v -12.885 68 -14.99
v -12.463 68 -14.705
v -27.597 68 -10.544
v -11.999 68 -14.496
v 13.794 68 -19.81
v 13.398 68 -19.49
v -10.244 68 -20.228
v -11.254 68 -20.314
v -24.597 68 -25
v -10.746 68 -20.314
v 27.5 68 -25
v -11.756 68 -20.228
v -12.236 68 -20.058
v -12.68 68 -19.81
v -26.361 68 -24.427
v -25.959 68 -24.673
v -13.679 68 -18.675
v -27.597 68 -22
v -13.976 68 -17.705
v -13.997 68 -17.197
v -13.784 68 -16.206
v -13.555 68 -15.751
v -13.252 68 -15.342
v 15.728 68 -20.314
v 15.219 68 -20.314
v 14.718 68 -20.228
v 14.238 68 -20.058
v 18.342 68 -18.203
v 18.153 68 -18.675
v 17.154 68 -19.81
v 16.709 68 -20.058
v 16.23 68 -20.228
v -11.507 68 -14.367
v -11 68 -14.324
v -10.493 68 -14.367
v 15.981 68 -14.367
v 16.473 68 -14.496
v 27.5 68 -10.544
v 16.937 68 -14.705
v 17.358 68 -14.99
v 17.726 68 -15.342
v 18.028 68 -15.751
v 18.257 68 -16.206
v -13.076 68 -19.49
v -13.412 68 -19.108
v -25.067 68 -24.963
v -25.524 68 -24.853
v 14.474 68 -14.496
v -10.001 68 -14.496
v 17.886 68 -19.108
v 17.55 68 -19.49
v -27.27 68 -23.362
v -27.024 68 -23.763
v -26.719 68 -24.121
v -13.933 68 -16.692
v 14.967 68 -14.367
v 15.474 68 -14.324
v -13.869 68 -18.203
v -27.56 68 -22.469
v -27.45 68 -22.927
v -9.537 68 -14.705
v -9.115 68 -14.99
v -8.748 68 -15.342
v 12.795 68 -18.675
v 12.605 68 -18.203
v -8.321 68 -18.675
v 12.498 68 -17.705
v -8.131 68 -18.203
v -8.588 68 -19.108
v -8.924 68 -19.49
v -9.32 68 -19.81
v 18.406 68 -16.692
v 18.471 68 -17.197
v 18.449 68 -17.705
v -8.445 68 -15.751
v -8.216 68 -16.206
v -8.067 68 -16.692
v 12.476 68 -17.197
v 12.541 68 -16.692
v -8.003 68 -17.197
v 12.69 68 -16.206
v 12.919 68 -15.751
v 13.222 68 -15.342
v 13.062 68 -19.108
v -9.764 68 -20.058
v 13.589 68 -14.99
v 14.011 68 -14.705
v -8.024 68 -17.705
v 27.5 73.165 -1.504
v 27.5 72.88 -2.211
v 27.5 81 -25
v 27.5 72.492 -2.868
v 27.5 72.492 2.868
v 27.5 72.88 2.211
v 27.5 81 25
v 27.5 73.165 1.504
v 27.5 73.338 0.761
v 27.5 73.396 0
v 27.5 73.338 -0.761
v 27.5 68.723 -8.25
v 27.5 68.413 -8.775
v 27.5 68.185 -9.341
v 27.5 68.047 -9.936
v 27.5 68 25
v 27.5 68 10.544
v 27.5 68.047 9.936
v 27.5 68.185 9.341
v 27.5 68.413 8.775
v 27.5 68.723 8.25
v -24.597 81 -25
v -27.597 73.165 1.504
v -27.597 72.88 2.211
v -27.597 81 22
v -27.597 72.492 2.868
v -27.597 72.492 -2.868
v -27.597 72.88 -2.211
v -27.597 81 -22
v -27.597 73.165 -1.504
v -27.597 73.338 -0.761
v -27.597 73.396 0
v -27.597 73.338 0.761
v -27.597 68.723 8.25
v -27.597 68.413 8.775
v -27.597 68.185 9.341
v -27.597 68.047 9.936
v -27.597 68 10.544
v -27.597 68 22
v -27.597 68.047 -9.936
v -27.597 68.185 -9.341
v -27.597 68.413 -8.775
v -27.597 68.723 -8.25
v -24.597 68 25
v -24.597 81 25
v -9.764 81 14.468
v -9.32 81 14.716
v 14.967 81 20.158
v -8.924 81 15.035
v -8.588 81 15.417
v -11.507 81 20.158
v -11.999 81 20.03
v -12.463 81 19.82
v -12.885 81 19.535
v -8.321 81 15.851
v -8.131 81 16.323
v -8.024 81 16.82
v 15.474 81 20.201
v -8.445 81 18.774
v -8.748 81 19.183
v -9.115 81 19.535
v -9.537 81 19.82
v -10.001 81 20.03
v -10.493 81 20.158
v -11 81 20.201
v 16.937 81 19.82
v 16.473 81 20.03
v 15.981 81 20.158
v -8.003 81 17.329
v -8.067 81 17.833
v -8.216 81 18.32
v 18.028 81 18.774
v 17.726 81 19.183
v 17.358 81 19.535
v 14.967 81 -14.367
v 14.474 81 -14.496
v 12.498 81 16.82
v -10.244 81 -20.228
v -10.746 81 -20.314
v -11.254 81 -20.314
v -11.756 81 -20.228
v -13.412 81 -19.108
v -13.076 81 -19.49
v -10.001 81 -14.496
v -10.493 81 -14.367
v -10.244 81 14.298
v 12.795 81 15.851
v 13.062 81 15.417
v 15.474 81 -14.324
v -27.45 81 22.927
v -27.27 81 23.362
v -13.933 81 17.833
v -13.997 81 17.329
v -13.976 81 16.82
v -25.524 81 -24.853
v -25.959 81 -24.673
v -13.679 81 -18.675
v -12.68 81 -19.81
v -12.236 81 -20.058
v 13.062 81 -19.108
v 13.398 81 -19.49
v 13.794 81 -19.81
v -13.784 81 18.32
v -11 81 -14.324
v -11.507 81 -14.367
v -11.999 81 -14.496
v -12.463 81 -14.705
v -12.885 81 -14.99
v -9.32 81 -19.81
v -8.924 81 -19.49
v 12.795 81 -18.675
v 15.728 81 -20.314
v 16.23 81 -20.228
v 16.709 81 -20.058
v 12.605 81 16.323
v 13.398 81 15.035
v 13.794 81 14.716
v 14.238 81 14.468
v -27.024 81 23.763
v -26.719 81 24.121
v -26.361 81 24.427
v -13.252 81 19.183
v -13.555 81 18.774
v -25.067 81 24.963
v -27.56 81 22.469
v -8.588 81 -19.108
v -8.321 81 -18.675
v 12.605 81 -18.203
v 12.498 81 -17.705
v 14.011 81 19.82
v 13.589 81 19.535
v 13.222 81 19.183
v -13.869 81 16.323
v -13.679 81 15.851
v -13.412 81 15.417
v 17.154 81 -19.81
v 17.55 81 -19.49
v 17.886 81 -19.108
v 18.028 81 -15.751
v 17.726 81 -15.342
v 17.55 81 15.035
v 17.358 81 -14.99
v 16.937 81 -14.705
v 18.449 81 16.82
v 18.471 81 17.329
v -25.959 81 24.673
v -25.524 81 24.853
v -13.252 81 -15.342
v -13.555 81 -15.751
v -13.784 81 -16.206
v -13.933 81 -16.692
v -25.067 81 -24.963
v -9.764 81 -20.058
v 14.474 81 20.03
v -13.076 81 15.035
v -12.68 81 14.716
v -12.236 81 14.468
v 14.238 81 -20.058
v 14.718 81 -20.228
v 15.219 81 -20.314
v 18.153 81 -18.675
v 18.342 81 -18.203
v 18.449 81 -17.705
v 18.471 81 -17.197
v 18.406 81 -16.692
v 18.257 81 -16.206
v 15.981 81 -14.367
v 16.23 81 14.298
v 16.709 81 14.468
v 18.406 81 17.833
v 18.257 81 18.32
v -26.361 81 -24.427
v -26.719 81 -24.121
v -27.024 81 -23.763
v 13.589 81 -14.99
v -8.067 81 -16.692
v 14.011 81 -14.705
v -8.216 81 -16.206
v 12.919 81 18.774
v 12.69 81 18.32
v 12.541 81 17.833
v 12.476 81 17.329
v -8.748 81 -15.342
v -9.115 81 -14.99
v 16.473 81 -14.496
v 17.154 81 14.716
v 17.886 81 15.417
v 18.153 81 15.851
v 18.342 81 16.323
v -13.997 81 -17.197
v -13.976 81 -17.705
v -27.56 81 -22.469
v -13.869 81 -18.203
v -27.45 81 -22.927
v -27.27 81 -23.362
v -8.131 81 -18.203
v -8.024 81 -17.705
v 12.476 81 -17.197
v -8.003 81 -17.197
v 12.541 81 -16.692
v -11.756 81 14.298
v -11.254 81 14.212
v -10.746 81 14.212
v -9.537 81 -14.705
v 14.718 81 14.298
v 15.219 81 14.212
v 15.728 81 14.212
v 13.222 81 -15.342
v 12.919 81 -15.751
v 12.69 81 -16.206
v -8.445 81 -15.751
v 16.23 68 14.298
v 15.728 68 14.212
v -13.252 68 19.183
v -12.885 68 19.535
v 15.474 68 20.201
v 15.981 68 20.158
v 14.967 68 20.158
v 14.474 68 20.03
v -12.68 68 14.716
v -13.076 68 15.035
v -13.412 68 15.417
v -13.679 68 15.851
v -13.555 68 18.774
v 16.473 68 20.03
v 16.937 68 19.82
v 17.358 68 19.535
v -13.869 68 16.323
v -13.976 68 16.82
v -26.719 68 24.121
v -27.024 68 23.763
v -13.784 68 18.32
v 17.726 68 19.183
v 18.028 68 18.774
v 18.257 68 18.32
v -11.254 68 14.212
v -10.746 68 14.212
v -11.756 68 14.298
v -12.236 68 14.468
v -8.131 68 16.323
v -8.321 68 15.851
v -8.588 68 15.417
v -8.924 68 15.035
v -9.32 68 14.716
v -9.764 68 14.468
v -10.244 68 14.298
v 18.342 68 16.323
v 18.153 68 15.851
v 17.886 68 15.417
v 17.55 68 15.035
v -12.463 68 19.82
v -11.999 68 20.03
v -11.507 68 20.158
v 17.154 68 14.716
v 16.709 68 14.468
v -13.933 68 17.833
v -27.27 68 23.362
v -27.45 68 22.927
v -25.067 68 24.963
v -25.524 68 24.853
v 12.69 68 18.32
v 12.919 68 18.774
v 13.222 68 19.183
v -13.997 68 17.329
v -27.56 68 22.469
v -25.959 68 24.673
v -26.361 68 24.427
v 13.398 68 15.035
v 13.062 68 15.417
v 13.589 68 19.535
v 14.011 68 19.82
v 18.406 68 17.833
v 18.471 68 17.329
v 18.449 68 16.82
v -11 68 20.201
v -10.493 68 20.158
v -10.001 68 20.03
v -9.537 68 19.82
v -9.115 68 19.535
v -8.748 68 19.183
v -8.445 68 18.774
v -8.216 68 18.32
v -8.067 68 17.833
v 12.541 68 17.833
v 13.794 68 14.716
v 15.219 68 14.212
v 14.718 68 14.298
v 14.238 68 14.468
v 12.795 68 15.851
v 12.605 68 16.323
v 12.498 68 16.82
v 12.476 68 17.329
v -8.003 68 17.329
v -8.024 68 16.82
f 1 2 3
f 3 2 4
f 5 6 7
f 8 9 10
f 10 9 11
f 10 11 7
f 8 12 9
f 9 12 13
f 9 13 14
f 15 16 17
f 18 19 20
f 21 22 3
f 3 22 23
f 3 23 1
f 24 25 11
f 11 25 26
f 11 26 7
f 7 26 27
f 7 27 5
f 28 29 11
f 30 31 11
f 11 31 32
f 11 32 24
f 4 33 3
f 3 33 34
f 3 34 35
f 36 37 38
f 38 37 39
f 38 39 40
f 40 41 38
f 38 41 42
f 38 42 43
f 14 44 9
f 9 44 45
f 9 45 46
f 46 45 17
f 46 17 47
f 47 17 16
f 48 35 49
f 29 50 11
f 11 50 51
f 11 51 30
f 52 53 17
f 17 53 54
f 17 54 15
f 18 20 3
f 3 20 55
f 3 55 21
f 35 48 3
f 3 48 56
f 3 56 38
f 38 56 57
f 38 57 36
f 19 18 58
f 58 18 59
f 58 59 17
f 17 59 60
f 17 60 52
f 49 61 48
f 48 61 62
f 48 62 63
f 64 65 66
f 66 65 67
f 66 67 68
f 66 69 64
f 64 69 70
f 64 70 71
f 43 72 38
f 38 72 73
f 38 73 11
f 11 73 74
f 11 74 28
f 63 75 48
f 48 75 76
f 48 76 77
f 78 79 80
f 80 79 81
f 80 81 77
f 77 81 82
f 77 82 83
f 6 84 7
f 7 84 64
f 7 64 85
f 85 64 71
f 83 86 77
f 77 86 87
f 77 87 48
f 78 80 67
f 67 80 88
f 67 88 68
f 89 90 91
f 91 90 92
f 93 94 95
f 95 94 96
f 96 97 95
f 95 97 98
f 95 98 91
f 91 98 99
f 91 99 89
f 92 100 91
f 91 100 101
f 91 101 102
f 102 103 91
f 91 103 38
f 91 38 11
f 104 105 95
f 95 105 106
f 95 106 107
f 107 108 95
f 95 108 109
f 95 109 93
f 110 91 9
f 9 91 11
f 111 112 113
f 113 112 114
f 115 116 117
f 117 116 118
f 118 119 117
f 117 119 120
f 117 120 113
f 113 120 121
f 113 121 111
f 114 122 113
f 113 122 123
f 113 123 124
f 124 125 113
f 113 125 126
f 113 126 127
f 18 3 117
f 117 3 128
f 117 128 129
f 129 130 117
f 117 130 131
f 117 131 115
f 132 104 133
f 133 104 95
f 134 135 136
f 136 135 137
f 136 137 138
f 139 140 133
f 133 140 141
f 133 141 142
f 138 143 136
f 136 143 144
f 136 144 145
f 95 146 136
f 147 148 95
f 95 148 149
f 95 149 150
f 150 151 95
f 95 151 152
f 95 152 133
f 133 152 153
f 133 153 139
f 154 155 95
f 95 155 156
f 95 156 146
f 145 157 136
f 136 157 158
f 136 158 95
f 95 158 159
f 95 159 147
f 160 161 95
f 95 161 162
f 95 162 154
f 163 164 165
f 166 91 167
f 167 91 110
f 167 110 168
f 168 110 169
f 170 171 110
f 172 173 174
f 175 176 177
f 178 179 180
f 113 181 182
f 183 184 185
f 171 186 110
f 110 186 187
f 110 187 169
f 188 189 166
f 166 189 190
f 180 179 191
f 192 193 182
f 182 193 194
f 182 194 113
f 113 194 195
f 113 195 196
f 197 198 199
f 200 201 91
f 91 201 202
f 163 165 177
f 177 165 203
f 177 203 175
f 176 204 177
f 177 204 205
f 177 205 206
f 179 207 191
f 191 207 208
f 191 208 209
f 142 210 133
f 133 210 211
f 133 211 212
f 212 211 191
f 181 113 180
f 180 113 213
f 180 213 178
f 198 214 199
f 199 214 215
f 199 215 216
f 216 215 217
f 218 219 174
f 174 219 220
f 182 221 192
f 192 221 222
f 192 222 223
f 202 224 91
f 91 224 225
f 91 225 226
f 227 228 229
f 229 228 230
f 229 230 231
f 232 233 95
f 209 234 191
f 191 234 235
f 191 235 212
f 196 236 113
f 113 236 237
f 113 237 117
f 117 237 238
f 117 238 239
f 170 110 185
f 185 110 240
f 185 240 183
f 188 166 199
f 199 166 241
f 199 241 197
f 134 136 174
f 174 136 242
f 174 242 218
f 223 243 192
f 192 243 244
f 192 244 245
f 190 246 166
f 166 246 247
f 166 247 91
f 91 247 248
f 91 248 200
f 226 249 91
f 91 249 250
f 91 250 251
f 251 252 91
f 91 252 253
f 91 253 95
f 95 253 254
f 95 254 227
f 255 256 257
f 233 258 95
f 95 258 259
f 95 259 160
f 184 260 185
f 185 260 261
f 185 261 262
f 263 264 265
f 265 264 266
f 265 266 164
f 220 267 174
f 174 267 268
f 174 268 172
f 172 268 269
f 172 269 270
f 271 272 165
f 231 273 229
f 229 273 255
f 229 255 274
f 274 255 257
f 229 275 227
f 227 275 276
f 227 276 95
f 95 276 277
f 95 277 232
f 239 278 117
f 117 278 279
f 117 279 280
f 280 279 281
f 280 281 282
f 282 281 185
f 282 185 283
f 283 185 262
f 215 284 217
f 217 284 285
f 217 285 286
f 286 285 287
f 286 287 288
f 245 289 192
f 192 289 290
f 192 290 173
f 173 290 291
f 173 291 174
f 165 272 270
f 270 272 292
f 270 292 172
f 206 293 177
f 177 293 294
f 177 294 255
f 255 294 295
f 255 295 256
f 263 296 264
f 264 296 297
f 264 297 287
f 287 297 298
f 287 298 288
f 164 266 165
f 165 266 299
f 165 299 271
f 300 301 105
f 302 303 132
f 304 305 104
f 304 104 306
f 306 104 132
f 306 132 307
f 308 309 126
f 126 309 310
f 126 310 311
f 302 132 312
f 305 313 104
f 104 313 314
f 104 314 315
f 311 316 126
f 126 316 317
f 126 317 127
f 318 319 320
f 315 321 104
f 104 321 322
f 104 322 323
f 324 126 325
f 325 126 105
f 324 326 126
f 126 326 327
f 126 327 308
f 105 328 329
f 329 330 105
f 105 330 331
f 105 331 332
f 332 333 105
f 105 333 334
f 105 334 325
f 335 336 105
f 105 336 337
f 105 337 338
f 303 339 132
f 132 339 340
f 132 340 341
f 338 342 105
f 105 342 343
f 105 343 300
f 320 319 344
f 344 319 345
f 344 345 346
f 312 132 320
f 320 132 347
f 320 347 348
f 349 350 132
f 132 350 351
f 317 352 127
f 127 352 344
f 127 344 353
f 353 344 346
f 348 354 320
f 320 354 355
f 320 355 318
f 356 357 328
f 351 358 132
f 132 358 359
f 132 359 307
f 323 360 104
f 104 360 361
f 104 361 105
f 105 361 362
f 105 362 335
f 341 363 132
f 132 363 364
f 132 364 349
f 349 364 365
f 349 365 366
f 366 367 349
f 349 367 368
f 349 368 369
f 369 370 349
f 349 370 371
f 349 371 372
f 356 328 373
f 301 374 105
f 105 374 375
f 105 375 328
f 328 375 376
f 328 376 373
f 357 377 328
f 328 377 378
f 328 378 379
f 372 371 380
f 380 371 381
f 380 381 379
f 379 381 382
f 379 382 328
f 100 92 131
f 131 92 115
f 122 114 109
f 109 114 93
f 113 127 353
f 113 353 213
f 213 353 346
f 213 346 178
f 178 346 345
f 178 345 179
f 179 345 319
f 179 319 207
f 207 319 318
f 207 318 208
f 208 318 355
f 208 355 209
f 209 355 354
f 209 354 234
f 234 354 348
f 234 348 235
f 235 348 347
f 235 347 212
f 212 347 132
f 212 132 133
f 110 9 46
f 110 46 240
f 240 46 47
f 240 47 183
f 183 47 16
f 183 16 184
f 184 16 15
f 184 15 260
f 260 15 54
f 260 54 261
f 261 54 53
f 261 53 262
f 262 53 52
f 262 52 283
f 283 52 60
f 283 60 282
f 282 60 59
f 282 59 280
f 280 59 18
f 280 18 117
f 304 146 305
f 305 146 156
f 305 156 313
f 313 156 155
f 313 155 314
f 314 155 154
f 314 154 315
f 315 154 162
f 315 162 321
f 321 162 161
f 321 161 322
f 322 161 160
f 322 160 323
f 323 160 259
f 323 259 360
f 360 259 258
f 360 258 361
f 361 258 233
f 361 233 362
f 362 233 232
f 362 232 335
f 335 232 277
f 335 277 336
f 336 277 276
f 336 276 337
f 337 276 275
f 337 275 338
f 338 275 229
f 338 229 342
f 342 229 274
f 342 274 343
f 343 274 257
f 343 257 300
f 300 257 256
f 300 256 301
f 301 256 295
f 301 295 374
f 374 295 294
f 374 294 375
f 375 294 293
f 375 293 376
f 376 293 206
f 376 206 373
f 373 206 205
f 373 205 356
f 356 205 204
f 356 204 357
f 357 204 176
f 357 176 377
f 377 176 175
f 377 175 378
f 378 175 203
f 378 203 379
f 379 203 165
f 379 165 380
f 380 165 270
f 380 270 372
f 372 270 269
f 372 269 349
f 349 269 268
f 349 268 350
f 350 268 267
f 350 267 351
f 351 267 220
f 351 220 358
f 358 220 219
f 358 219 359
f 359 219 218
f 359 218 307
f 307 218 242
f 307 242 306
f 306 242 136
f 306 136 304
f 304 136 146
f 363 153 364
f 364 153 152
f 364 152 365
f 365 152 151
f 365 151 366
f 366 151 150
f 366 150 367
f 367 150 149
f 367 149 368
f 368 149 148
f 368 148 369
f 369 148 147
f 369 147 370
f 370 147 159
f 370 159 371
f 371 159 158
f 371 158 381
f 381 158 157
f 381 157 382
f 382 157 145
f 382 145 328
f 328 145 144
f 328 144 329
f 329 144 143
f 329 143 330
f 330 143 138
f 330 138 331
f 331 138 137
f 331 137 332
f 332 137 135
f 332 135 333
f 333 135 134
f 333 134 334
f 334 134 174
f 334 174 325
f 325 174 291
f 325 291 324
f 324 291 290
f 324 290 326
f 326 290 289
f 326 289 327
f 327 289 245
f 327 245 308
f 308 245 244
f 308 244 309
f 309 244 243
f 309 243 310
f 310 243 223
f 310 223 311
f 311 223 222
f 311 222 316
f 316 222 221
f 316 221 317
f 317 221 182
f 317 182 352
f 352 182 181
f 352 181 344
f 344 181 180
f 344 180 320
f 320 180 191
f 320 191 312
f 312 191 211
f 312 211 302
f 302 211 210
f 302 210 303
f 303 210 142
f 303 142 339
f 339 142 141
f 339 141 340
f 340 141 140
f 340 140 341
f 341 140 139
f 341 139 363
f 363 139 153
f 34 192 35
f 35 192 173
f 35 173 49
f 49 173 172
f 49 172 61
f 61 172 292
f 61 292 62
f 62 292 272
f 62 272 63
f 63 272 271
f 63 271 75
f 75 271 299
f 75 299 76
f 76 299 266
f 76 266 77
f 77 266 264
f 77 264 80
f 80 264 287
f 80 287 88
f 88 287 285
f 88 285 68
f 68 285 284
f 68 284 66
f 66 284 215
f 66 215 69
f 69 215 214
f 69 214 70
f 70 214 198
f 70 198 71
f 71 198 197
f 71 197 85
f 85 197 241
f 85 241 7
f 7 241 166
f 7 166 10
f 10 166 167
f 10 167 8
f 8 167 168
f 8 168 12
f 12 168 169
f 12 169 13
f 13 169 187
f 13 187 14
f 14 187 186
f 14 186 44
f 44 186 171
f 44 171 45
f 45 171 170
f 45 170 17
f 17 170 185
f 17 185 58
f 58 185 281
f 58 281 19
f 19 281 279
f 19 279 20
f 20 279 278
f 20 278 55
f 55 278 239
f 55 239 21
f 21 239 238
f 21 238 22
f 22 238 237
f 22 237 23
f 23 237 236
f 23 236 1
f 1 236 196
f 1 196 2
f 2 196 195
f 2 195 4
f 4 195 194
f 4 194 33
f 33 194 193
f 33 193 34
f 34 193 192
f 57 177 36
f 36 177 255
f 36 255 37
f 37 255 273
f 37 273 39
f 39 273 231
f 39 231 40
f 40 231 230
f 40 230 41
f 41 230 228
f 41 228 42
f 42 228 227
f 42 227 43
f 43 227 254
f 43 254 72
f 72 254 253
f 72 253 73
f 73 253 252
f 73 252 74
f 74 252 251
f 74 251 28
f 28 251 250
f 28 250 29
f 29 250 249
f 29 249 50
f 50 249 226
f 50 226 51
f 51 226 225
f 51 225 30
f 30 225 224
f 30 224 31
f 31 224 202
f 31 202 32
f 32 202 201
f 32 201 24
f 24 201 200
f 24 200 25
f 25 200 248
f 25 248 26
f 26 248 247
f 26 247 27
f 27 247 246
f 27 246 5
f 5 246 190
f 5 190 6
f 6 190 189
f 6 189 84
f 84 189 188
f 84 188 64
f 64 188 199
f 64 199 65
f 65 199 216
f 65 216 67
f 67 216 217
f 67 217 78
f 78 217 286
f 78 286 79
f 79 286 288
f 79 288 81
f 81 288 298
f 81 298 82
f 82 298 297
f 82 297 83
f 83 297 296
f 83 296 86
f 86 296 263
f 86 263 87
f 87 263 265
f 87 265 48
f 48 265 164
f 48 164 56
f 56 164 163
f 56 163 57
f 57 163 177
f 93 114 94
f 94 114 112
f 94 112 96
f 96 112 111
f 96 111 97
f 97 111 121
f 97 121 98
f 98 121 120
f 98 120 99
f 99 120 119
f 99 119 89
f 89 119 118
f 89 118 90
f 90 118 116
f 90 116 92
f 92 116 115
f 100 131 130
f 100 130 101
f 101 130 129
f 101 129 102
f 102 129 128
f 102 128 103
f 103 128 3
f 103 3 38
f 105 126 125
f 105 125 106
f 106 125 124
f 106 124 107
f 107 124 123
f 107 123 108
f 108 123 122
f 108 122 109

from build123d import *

# Parameters (mm, degrees)
SKETCH6_W          = 55.097235346
SKETCH6_H          = 50
MAIN_BODY_DEPTH    = 13
MAIN_HOLE_DEPTH    = 56.097235346
EXTERIOR_FILLET_R  = 3
SKETCH9_R          = 3
BOLT_HOLES_DEPTH   = 14
TOP_HOLE_FILLET_R  = 5
SIDE_HOLE_FILLET_R = 4


with BuildPart() as part:
    # Sketch6 → Main Body (new body)
    with BuildSketch(Plane(origin=(0, 68, 0), x_dir=(1, 0, 0), z_dir=(0, 1, 0))):
        with Locations((-0.048617673, 0)):
            Rectangle(SKETCH6_W, SKETCH6_H)
    extrude(amount=MAIN_BODY_DEPTH)

    # Sketch7 → Main Hole (cut, through all)
    with BuildSketch(Plane(origin=(27.5, 0, 0), x_dir=(0, 0, -1), z_dir=(1, 0, 0))):
        Polygon((0, 74.5), (-9.282962044, 68), (0, 61.5), (9.282962044, 68), align=None)
    extrude(amount=-MAIN_HOLE_DEPTH, mode=Mode.SUBTRACT)

    # Exterior Fillet
    exterior_fillet_edges = [part.edges().sort_by_distance(p)[0] for p in [
        (-27.597235346, 74.5, 25),
        (-27.597235346, 74.5, -25),
    ]]
    fillet(exterior_fillet_edges, radius=EXTERIOR_FILLET_R)

    # Sketch9 → Bolt Holes (cut, through all)
    with BuildSketch(Plane(origin=(0, 81, 0), x_dir=(1, 0, 0), z_dir=(0, 1, 0))):
        with Locations((15.473743703, -17.201232435)):
            Circle(SKETCH9_R)
        with Locations((-11, -17.201232435)):
            Circle(SKETCH9_R)
        with Locations((15.473743703, 17.324336932)):
            Circle(SKETCH9_R)
        with Locations((-11, 17.324336932)):
            Circle(SKETCH9_R)
    extrude(amount=-BOLT_HOLES_DEPTH, mode=Mode.SUBTRACT)

    # Top Hole Fillet
    top_hole_fillet_edges = [part.edges().sort_by_distance(p)[0] for p in [
        (-0.048617673, 74.5, 0),
    ]]
    fillet(top_hole_fillet_edges, radius=TOP_HOLE_FILLET_R)

    # Side Hole Fillet
    side_hole_fillet_edges = [part.edges().sort_by_distance(p)[0] for p in [
        (-0.048617673, 68, -9.282962044),
        (-0.048617673, 68, 9.282962044),
    ]]
    fillet(side_hole_fillet_edges, radius=SIDE_HOLE_FILLET_R)


solid = part.part
